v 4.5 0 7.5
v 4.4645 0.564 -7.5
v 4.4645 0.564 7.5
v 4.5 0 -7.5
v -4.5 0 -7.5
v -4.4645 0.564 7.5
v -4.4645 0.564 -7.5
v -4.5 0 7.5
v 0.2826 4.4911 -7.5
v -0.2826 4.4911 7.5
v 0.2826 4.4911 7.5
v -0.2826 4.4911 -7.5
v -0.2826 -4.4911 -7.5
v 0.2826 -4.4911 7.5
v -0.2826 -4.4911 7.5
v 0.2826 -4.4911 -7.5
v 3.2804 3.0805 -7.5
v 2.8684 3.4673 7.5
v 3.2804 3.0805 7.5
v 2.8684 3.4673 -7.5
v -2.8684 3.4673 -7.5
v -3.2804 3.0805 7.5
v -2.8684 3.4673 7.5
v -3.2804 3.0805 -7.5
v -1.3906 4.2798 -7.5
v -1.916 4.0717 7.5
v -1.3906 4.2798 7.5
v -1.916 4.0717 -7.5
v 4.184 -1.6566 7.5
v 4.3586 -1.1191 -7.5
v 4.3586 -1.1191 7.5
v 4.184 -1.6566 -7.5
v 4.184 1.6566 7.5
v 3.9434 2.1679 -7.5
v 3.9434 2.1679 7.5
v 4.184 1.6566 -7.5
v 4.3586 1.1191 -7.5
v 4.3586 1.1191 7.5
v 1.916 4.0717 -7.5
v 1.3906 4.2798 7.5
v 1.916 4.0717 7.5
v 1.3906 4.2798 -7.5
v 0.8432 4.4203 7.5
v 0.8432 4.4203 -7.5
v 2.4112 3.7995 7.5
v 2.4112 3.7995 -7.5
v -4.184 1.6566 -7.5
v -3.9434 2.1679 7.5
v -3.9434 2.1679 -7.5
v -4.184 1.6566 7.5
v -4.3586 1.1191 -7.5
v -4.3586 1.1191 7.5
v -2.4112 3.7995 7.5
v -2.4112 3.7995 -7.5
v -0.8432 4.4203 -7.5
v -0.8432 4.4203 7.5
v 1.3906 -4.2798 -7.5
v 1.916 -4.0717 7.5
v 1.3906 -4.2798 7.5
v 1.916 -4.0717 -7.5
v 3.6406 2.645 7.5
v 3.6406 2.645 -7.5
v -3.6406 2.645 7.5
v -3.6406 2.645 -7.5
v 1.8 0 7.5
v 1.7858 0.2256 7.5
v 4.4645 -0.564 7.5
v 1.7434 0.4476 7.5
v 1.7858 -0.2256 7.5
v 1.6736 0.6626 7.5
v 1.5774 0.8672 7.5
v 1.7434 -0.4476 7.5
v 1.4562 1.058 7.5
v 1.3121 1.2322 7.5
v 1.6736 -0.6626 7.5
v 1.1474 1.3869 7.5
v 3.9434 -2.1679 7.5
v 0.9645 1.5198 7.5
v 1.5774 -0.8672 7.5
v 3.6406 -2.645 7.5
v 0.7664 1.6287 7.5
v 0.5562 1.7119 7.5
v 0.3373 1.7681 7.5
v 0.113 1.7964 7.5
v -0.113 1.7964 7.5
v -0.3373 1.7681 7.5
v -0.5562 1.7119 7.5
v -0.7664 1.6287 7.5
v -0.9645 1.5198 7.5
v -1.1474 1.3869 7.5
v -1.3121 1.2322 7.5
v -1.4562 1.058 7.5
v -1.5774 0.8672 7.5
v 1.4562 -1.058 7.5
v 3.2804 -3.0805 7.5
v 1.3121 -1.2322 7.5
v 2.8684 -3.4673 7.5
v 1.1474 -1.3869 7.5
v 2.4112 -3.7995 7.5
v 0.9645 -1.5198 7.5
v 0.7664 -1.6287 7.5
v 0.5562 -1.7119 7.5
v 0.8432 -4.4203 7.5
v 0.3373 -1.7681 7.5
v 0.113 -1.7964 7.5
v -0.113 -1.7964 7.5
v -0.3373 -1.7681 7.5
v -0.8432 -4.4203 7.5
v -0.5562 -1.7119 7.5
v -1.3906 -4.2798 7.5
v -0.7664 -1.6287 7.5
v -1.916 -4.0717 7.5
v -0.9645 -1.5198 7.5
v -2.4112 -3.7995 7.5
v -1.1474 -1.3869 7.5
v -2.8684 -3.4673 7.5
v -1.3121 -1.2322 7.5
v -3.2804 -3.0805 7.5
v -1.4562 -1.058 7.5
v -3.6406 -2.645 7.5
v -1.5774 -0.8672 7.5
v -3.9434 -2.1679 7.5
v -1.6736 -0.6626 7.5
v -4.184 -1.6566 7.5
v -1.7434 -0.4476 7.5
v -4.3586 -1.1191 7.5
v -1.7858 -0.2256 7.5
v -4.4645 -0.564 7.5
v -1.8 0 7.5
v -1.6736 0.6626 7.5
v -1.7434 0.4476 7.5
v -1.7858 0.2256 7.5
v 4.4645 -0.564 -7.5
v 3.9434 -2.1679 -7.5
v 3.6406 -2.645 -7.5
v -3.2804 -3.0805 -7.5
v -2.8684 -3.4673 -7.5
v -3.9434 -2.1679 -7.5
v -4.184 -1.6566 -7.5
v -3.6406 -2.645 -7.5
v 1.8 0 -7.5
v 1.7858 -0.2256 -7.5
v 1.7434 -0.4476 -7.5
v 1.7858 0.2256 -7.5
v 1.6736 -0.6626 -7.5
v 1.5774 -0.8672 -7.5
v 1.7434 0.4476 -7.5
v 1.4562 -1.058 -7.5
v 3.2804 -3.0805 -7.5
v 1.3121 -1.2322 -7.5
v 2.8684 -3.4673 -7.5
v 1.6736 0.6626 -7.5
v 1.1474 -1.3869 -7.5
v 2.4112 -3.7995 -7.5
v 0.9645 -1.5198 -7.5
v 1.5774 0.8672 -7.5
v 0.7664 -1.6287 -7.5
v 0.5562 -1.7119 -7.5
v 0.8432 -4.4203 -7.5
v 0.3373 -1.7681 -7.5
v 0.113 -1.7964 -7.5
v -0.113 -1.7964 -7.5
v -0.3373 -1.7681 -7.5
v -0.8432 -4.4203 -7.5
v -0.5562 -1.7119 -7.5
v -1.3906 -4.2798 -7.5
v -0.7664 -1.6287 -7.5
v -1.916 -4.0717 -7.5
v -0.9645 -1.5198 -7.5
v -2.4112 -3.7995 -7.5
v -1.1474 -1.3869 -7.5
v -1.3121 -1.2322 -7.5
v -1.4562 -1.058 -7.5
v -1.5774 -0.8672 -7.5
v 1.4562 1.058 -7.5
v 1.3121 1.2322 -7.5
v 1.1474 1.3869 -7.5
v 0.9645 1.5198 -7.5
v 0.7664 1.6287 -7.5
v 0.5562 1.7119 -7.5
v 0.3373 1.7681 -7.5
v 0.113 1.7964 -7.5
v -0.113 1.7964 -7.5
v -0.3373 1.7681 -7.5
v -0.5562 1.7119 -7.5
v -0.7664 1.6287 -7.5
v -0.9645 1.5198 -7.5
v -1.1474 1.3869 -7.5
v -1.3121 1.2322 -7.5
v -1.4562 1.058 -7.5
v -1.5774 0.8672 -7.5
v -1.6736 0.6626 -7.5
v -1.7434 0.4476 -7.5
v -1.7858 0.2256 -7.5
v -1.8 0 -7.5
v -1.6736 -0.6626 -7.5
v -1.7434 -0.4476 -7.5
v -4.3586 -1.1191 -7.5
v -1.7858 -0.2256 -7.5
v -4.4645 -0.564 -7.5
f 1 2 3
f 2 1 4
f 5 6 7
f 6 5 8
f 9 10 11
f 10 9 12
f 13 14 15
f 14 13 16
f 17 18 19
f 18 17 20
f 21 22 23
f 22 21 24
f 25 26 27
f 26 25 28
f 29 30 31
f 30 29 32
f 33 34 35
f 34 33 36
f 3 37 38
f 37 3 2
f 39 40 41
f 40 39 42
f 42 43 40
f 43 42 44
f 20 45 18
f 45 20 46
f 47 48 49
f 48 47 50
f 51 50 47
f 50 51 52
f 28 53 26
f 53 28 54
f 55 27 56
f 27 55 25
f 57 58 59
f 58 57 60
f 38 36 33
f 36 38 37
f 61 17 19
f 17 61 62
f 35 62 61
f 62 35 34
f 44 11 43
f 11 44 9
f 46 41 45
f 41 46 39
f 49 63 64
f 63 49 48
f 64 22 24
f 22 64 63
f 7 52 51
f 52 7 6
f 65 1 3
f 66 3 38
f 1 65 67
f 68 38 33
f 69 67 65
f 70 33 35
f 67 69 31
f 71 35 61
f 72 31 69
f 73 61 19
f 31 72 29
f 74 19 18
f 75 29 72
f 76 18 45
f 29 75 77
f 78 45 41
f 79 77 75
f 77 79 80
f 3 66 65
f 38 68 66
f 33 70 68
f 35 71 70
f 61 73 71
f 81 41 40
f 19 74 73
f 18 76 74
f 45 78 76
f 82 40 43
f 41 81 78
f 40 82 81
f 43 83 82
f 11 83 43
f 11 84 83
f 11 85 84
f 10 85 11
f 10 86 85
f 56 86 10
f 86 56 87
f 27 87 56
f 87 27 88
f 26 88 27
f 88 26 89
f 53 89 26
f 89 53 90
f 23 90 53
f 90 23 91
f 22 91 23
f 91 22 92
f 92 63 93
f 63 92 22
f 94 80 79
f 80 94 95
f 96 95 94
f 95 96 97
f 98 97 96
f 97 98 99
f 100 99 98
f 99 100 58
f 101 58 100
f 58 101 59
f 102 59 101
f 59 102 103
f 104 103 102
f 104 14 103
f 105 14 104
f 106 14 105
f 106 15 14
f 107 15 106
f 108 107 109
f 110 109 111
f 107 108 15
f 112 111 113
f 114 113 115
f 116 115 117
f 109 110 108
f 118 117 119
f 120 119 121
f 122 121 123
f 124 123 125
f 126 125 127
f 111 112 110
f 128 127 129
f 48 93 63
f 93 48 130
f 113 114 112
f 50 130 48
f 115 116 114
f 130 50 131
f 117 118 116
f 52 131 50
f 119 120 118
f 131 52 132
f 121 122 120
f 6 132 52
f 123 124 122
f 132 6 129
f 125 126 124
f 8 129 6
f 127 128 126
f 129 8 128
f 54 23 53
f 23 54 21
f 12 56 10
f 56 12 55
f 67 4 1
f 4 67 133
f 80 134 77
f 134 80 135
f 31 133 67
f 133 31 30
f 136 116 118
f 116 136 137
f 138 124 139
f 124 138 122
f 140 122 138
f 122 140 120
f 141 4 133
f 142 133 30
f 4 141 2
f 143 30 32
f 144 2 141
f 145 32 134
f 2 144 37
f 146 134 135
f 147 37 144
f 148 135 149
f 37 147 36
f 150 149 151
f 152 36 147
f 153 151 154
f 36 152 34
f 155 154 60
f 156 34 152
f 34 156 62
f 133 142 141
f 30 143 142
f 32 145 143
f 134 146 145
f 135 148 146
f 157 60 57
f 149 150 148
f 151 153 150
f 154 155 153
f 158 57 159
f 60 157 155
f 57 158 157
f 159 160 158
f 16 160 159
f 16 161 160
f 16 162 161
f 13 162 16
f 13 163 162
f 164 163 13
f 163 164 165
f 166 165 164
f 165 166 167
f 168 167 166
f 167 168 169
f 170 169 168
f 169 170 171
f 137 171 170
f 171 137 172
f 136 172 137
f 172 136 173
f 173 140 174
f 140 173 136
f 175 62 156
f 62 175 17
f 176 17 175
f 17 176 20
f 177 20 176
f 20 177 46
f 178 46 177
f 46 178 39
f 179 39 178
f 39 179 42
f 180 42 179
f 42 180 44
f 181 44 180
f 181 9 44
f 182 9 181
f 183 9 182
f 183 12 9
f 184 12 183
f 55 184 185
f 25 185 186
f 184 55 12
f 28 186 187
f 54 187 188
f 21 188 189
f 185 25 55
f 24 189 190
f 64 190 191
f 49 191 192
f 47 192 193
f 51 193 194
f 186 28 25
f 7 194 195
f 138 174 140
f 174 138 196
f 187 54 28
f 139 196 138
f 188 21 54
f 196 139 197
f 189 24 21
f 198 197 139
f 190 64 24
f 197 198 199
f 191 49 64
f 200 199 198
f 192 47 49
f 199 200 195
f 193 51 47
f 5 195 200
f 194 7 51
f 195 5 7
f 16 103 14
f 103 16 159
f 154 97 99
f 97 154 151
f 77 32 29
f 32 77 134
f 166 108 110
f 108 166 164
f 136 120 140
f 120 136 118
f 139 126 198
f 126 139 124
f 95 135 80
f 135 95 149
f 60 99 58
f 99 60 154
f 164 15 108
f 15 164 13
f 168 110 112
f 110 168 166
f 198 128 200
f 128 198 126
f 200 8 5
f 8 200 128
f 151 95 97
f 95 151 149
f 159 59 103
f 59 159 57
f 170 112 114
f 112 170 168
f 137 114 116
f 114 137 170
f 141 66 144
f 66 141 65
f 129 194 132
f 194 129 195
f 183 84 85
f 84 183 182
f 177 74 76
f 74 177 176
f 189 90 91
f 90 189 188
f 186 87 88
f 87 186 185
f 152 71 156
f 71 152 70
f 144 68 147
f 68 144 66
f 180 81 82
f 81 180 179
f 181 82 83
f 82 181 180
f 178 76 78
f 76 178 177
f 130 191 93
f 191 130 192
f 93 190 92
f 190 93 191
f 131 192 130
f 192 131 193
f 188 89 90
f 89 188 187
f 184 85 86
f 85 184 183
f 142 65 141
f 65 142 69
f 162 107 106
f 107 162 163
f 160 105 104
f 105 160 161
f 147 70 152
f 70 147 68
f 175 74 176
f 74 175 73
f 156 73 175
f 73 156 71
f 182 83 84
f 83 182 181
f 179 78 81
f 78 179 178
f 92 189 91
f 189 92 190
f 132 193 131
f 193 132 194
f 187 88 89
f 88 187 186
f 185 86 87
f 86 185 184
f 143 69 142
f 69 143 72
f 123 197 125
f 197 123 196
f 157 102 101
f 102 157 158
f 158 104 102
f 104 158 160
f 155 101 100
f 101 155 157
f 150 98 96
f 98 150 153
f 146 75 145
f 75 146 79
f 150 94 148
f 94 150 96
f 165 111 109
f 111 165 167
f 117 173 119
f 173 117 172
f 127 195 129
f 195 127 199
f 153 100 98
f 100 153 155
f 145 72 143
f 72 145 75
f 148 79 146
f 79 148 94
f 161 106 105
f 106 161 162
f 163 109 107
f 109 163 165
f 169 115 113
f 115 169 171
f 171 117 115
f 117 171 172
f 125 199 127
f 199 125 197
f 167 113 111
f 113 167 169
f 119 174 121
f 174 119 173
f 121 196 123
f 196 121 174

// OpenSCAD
$fn = 50;


difference() {
	union() {
		translate(v = [0, 0, -7.5000000000]) {
			cylinder(h = 15, r = 4.5000000000);
		}
	}
	union() {
		translate(v = [0, 0, -100.0000000000]) {
			cylinder(h = 200, r = 1.8000000000);
		}
	}
}
